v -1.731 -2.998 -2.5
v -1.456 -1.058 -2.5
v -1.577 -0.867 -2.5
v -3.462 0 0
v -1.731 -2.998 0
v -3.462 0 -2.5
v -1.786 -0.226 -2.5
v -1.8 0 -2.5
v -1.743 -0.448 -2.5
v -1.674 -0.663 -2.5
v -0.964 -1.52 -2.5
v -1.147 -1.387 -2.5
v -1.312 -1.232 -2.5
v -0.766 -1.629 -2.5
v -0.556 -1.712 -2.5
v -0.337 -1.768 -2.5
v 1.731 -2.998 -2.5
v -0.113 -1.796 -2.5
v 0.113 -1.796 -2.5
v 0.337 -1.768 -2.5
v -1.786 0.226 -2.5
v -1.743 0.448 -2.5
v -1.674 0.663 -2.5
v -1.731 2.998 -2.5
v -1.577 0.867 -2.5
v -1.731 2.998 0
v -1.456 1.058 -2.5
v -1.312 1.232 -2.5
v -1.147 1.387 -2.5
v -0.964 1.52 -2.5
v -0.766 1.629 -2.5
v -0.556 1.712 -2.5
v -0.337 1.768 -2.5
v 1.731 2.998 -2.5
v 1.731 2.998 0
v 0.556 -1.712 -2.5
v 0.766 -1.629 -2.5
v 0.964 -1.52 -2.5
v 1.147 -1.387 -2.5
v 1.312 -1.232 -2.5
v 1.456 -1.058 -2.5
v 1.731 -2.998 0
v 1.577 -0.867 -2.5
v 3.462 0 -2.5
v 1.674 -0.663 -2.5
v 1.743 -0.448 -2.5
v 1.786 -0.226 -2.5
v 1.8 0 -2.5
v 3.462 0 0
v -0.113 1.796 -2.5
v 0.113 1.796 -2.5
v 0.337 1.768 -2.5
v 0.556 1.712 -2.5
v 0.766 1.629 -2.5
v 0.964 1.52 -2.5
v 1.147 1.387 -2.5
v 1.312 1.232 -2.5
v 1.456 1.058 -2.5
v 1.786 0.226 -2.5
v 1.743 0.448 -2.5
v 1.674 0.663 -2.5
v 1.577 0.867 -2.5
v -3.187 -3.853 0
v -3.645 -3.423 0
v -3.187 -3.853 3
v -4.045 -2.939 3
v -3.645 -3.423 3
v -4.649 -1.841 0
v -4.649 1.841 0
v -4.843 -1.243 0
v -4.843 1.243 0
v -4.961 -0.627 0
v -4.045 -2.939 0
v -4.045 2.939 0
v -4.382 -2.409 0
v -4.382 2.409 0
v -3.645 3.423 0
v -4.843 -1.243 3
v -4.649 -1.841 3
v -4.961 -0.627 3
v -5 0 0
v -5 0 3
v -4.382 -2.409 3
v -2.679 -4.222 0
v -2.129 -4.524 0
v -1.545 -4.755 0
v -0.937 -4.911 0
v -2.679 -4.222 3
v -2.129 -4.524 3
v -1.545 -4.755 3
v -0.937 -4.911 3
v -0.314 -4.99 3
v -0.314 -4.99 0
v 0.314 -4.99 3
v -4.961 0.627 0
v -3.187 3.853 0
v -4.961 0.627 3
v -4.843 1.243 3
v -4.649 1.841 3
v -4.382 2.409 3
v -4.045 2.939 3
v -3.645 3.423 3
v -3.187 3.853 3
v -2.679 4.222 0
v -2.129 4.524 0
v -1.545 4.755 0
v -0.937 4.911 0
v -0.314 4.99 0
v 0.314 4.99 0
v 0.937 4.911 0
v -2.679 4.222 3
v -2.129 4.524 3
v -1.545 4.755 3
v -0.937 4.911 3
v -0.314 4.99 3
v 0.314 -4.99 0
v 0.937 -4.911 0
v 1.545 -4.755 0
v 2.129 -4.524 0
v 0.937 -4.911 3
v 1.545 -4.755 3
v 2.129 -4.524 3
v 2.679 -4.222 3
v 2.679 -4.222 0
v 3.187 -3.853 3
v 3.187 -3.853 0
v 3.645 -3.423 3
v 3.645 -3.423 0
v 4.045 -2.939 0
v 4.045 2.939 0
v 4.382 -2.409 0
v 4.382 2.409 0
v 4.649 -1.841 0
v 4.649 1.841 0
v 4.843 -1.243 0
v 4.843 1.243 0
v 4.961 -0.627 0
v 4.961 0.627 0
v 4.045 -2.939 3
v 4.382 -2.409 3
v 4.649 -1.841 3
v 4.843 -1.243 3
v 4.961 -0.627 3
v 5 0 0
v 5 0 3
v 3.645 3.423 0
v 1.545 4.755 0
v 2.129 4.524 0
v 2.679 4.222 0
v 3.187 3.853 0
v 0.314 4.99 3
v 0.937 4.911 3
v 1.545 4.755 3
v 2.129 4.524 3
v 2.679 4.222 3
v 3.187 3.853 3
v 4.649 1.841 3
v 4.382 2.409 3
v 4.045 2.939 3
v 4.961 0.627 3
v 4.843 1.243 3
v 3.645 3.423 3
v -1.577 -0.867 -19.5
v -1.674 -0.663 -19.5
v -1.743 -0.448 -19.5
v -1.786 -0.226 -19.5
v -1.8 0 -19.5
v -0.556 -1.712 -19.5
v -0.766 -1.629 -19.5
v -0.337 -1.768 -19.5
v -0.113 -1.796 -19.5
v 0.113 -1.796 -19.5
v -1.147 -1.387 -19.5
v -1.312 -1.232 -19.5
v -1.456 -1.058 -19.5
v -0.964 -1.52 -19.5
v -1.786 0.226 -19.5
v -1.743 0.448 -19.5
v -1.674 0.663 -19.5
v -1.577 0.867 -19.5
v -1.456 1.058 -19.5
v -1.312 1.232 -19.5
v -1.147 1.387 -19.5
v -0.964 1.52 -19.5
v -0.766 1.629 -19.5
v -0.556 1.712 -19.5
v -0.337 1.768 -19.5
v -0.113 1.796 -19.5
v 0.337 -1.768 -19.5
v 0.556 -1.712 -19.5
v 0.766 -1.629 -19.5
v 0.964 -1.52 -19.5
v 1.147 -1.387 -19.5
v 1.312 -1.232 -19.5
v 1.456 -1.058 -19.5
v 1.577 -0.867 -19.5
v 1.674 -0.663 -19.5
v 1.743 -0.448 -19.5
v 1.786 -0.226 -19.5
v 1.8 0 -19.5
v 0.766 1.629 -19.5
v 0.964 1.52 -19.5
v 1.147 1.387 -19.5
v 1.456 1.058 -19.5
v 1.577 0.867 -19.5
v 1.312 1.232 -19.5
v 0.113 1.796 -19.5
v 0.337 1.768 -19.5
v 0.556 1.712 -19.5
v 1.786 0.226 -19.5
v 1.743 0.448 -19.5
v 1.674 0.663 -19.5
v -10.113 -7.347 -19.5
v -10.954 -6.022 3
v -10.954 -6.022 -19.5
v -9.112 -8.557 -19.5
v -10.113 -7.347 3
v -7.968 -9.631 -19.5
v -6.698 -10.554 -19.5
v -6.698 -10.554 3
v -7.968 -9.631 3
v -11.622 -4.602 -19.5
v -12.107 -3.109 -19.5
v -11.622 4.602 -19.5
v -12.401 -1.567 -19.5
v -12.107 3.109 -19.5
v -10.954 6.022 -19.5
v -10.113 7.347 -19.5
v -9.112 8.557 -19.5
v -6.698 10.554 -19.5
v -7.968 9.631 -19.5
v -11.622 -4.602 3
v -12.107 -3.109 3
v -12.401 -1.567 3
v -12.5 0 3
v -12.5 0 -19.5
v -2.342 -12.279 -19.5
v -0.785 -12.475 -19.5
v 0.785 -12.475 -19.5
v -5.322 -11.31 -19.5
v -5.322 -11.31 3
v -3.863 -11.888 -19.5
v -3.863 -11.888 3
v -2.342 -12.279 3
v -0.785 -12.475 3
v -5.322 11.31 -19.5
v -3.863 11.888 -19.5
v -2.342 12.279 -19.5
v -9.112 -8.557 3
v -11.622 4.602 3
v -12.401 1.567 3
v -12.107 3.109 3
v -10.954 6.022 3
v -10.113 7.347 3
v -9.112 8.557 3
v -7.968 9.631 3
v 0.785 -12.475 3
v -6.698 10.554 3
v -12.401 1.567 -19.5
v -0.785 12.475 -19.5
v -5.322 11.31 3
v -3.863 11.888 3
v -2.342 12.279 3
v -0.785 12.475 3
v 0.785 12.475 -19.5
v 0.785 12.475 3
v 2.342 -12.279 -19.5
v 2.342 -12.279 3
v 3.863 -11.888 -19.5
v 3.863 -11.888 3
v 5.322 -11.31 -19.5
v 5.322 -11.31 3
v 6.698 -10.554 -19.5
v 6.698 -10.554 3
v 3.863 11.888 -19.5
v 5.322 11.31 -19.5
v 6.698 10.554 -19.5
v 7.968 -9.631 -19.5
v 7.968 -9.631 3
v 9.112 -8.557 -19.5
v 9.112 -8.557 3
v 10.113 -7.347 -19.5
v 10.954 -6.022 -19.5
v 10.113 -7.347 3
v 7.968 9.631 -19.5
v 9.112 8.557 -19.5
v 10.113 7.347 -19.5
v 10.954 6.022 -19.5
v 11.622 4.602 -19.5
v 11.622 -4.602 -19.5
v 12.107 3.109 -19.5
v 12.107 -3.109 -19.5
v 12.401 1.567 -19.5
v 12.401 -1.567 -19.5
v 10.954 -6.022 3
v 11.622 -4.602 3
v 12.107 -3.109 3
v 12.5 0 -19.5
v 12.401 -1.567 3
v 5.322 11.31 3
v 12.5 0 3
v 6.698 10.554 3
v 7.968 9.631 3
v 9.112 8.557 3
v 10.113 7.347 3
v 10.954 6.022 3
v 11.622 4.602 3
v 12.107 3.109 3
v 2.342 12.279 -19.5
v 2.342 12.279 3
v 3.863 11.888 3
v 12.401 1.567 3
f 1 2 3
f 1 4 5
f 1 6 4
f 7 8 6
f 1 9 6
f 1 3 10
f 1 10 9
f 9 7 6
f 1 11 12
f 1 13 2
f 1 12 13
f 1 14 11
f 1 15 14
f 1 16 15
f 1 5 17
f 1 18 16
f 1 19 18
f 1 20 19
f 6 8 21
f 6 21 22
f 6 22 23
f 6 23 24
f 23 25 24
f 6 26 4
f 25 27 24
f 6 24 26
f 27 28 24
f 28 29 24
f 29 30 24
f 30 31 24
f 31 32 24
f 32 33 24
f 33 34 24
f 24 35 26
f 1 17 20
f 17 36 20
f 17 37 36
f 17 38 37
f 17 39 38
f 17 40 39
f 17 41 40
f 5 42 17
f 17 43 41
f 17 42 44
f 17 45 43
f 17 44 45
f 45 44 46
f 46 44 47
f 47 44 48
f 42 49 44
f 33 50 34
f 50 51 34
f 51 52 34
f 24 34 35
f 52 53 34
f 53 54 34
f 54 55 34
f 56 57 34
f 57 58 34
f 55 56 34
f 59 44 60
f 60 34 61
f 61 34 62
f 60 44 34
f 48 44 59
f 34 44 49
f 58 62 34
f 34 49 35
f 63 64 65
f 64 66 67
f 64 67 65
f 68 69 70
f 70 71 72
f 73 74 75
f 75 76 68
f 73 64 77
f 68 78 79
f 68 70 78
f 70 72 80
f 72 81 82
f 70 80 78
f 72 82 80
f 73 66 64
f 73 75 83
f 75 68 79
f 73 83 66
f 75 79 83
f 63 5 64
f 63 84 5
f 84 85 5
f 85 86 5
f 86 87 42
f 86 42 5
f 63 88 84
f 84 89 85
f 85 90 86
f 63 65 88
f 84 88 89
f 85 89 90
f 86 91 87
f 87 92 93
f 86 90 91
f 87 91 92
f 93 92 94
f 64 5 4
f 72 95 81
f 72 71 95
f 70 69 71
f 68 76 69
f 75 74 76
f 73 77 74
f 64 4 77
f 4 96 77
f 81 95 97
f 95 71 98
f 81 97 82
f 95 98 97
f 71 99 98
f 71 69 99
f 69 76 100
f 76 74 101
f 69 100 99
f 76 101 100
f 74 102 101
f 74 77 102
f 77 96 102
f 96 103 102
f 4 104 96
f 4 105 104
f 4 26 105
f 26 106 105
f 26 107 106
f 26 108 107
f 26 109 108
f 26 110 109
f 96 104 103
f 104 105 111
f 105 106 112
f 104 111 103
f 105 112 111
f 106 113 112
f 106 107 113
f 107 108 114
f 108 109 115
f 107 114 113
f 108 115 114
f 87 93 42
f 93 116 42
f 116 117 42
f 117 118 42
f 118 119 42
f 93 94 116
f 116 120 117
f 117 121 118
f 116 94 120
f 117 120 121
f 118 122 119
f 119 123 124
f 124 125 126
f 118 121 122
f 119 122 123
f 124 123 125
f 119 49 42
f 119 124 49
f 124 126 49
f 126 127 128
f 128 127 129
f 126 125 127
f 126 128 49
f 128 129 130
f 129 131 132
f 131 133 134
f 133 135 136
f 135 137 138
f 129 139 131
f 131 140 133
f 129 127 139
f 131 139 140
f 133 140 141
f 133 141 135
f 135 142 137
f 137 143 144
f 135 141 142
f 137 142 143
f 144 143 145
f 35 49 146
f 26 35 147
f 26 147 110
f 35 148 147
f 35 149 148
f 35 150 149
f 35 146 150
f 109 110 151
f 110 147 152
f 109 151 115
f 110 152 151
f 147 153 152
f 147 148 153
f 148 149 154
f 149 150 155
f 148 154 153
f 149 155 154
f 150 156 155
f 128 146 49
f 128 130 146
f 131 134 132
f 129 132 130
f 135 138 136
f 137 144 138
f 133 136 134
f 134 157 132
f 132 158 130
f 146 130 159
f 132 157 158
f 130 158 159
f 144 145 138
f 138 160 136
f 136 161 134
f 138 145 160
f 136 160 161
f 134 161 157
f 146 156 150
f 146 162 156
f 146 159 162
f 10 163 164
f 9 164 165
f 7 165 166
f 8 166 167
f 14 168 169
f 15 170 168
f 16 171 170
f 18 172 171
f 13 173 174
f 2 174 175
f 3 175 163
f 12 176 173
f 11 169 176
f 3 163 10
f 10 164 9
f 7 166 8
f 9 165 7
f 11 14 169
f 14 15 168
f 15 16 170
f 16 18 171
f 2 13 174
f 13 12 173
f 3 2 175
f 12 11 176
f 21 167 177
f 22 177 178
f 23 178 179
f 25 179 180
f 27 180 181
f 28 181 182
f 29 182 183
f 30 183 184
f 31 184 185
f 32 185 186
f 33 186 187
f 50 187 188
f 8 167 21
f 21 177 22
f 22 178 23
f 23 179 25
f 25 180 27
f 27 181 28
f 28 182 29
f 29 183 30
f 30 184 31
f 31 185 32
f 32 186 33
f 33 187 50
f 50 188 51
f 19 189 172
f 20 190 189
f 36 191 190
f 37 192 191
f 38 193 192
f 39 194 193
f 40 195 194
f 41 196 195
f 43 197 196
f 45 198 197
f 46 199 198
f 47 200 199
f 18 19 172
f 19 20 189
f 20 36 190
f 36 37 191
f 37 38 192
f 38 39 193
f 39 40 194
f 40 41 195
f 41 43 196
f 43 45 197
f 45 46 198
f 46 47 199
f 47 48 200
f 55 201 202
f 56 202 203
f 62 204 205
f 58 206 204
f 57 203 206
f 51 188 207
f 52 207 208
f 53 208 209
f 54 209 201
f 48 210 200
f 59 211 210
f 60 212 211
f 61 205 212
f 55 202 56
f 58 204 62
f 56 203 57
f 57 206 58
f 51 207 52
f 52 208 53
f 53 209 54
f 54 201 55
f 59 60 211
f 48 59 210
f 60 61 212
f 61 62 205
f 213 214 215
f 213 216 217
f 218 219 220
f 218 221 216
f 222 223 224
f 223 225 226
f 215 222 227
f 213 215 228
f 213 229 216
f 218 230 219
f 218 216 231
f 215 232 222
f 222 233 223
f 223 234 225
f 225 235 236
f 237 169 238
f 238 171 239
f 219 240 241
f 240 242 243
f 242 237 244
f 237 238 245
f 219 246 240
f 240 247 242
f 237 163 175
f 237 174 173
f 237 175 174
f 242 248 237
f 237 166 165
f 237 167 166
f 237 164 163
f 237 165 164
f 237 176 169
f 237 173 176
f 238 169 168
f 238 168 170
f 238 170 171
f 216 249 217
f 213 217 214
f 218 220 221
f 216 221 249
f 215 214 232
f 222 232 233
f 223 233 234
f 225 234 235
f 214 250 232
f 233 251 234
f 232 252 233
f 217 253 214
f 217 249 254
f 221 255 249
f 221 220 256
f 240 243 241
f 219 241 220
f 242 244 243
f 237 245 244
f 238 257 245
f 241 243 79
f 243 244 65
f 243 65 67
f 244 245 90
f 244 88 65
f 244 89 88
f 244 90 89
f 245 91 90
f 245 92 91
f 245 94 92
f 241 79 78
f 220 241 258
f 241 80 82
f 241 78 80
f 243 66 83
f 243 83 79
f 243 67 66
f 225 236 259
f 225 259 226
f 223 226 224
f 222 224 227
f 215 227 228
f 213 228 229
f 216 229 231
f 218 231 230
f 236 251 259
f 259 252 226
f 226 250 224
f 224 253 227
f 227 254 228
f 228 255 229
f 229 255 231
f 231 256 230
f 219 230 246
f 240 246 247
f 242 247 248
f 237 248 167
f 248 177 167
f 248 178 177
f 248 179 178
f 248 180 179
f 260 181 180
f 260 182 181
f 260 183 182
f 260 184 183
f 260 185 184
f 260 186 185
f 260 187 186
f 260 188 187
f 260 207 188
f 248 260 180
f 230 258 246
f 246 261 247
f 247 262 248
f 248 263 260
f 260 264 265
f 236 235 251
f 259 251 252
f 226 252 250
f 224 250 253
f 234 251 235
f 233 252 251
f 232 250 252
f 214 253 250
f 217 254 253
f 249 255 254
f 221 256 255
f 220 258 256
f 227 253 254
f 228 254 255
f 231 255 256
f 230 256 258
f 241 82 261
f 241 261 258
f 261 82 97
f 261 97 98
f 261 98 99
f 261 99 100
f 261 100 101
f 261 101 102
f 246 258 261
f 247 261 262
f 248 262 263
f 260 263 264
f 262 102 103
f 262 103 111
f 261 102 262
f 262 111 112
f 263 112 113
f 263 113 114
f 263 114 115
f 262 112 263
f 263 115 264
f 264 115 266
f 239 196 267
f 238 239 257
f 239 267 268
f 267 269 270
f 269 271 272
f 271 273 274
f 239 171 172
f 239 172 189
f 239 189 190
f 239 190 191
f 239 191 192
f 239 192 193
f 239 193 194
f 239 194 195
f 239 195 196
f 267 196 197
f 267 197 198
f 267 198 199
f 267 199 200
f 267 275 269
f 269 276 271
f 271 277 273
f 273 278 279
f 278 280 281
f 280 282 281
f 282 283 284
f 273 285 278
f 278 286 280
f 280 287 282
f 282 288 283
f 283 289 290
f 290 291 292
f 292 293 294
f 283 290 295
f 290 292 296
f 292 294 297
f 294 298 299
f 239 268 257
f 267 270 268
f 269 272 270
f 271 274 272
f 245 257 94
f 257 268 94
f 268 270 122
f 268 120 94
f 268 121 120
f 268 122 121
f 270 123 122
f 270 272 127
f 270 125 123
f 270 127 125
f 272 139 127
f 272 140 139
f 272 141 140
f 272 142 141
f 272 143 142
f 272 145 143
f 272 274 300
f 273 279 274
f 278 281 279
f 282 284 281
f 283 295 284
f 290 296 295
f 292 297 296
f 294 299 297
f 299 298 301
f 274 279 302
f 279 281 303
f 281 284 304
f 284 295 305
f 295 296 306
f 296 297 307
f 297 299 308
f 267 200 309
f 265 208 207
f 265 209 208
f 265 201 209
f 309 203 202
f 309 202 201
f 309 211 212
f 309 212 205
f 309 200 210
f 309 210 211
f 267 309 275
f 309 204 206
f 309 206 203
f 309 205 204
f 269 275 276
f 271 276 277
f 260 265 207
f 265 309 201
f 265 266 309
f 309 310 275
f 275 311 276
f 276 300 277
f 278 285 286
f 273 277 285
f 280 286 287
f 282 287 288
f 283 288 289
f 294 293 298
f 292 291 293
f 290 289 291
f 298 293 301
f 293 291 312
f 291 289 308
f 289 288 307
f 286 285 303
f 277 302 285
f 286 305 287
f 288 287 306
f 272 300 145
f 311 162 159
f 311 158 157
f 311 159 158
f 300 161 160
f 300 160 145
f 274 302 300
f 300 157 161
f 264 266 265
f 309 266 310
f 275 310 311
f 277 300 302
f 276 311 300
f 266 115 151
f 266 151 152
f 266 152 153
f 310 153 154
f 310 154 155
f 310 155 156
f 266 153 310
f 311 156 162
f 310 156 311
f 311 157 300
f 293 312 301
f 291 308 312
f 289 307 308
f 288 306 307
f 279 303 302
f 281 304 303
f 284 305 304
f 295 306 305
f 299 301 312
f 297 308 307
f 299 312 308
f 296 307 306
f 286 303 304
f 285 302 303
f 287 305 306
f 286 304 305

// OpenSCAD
$fn = 50;

difference() {
	union() {
		translate(v = [0, 0, -19.5]) {
			cylinder(h = 22.5, r = 12.5);
		}
	}
	union() {
		translate(v = [0, 0, 0]) {
			rotate(a = [0, 0, 0]) {
				difference() {
					union() {
						translate(v = [0, 0, -2.5]) {
							linear_extrude(height = 2.5) {
								polygon(points = [[3.4619999999999997, 0.0], [1.7310000000000003, 2.9981799479017264], [-1.7309999999999992, 2.9981799479017264], [-3.4619999999999997, 4.2397272186481365e-16], [-1.7310000000000014, -2.998179947901726], [1.7309999999999977, -2.9981799479017277]]);
							}
						}
					}
					union();
				}
			}
		}
		#cylinder(h = 3, r = 5.0);
		#translate(v = [0, 0, -100.0]) {
			cylinder(h = 200, r = 1.8);
		}
	}
}
